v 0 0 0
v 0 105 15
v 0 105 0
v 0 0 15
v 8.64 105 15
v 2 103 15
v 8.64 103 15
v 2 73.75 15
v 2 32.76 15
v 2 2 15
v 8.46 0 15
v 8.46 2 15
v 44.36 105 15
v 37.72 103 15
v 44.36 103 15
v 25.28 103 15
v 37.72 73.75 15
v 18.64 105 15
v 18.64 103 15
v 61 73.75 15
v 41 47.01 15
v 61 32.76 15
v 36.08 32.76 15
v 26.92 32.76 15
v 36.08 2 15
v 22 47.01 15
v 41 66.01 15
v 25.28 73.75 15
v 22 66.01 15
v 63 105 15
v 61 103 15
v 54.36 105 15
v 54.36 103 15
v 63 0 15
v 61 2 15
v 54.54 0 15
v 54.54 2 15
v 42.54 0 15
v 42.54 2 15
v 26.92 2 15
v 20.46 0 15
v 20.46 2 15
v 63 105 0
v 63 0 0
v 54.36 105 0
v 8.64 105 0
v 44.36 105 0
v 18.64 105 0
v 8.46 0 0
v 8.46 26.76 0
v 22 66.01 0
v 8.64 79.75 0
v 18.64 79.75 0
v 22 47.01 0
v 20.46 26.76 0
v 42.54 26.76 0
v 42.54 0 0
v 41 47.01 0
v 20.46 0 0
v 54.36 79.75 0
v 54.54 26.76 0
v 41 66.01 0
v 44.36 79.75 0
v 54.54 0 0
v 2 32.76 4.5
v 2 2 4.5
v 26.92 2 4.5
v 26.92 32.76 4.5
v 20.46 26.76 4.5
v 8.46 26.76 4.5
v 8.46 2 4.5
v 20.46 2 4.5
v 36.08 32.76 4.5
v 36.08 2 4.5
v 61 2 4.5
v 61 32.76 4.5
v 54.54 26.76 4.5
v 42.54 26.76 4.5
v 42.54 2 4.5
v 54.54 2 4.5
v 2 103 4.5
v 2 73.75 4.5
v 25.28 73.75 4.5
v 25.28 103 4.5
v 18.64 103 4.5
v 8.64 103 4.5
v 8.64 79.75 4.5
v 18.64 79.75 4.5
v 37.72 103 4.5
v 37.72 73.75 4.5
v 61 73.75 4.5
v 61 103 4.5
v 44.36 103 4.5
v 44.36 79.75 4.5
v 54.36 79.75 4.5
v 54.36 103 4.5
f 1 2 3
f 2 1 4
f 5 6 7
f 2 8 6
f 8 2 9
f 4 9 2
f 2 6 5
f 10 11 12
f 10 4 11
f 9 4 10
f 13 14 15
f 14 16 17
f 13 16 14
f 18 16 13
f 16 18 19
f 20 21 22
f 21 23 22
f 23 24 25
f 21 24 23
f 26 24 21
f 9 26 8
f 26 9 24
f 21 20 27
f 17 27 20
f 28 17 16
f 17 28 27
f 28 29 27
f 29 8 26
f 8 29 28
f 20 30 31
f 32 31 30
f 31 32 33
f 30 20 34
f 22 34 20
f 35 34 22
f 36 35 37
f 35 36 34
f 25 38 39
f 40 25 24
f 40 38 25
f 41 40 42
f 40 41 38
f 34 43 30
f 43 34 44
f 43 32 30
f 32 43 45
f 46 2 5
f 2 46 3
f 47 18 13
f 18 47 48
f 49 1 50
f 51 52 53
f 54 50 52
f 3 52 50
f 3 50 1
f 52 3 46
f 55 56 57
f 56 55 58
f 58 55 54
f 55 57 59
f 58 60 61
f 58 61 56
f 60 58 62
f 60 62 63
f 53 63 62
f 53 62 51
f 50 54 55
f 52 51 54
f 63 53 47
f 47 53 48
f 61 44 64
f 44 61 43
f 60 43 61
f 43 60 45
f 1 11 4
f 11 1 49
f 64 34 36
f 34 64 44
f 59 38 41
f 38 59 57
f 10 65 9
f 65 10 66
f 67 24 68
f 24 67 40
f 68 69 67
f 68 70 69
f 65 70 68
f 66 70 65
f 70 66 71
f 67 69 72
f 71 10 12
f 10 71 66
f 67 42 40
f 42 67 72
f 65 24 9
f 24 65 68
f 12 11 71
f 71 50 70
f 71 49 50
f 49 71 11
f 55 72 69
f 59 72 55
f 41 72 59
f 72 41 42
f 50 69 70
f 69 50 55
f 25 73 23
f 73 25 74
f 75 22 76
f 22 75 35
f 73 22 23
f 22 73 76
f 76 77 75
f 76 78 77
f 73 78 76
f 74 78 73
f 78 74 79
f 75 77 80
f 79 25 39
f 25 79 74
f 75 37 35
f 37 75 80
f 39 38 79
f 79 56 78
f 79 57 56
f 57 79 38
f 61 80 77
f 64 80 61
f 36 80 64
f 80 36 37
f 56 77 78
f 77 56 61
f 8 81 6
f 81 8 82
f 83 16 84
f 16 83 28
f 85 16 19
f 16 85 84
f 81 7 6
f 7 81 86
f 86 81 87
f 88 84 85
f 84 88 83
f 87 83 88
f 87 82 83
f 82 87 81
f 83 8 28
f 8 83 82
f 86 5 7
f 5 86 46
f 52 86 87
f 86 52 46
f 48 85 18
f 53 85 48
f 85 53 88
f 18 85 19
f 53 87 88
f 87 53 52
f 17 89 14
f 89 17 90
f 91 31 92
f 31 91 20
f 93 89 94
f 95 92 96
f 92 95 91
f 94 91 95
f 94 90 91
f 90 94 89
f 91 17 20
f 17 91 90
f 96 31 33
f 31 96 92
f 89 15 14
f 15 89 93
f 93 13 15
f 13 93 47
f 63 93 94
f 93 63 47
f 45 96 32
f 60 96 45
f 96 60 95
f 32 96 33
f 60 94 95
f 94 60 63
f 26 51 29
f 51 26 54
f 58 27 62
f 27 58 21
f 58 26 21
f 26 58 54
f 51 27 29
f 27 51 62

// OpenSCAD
length = 63;
width = 105;
height = 15;

//Based on magnet size:
magnetBaseInnerDiameter = 19;
magnetHeight = 4.0;

//black imp (2 stacks of 5) 29.76 x 23.92, full (ish) base
//forest imp (2 stacks of 5) 28.25 x 22.28, base 17.44

//single token 2.0
magnetOffset = 43.01;

largeToken1Width = 29.76 + 1;
largeToken1Length = 23.92 + 1;
largeToken1Height = 10 + .5;
largeToken1SquareLipWidthRemainder = largeToken1Length - 12;
largeToken1SquareLipLengthRemainder = 4;

largeToken2Width = 29.76 + 1;
largeToken2Length = 23.92 + 1;
largeToken2Height = 10 + .5;
largeToken2SquareLipWidthRemainder = largeToken2Length - 12;
largeToken2SquareLipLengthRemainder = 4;

smallToken1Width = 28.25 + 1;
smallToken1Length = 22.28 + 1;
smallToken1Height = 10 + .5;
smallToken1SquareLipWidthRemainder = smallToken1Length - 10;
smallToken1SquareLipLengthRemainder = 4;

smallToken2Width = 28.25 + 1;
smallToken2Length = 22.28 + 1;
smallToken2Height = 10 + .5;
smallToken2SquareLipWidthRemainder = smallToken2Length - 10;
smallToken2SquareLipLengthRemainder = 4;

spaceBetweenCircles = 2;
wallThickness = spaceBetweenCircles;



difference(){
    cube([length, width, height]);


//----------------------------------
translate(
        [
            wallThickness,
            wallThickness,
            height - largeToken1Height
        ])
        cube([largeToken1Length,largeToken1Width, largeToken1Height]);
    translate([
        wallThickness + largeToken1SquareLipWidthRemainder/2,
        0,
        0])
        cube([
            largeToken1Length - largeToken1SquareLipWidthRemainder,
            largeToken1Width - largeToken1SquareLipLengthRemainder,
            height]);
    
translate(
        [
            length - (wallThickness + largeToken2Length),
            wallThickness,
            height - largeToken2Height
        ])
        cube([largeToken2Length,largeToken2Width, largeToken2Height]);
    translate([
        length - (wallThickness + (largeToken2Length - largeToken2SquareLipWidthRemainder) + largeToken2SquareLipWidthRemainder/2),
        0,
        0])
        cube([
            largeToken2Length - largeToken2SquareLipWidthRemainder,
            largeToken2Width - largeToken2SquareLipLengthRemainder,
            height]);

            
//---------------------------------------------------------------------
    
    translate(
        [
            wallThickness,
            width - (wallThickness + smallToken1Width),
            height - smallToken1Height
        ])
        cube([smallToken1Length,smallToken1Width, smallToken1Height]);
    translate([
        wallThickness + smallToken1SquareLipWidthRemainder/2,
        width - (smallToken1Width - smallToken1SquareLipLengthRemainder),
        0])
        cube([
            smallToken1Length - smallToken1SquareLipWidthRemainder,
            smallToken1Width - smallToken1SquareLipLengthRemainder,
            height]);

    translate(
        [
            length - (wallThickness + smallToken2Length),
            width - (wallThickness + smallToken2Width),
            height - smallToken2Height
        ])
        cube([smallToken2Length,smallToken2Width, smallToken2Height]);
    translate([
        length - (wallThickness + smallToken2Length) + smallToken2SquareLipWidthRemainder/2,
        width - (smallToken2Width - smallToken2SquareLipLengthRemainder),
        0])
        cube([
            smallToken2Length - smallToken2SquareLipWidthRemainder,
            smallToken2Width - smallToken2SquareLipLengthRemainder,
            height]);       

//----------------------------------------
   
    translate([length/2 - magnetBaseInnerDiameter/2, magnetOffset + wallThickness * 2, 0])
        cube([magnetBaseInnerDiameter, magnetBaseInnerDiameter, height]);
        

}
